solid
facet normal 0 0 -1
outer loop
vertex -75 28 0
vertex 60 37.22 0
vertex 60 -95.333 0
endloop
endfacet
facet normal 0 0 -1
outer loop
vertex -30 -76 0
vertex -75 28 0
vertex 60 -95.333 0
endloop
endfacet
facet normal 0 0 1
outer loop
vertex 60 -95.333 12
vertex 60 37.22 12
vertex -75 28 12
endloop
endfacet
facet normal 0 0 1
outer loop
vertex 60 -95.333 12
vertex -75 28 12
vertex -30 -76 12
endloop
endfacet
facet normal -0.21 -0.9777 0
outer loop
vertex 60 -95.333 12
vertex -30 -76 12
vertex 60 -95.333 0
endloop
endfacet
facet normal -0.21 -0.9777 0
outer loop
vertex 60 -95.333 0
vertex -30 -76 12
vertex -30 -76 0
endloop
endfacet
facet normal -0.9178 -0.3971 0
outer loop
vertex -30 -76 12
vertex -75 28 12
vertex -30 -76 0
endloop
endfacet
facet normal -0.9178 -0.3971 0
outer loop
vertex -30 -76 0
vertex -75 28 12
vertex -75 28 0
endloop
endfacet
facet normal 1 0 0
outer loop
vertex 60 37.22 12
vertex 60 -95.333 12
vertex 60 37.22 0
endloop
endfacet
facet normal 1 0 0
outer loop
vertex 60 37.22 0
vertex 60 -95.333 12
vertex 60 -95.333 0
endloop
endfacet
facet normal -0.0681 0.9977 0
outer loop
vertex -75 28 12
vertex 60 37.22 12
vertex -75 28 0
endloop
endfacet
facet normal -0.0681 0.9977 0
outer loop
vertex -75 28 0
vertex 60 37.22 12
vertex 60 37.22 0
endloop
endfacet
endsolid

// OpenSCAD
polyhedron(points=[[60.0, -95.333333, 0.0], [-30.0, -76.0, 0.0], [-75.0, 28.0, 0.0], [60.0, 37.219512, 0.0], [60.0, -95.333333, 12.0], [-30.0, -76.0, 12.0], [-75.0, 28.0, 12.0], [60.0, 37.219512, 12.0]], faces=[[2, 3, 0], [1, 2, 0], [4, 7, 6], [4, 6, 5], [4, 5, 0], [0, 5, 1], [5, 6, 1], [1, 6, 2], [7, 4, 3], [3, 4, 0], [6, 7, 2], [2, 7, 3]], convexity=30);
